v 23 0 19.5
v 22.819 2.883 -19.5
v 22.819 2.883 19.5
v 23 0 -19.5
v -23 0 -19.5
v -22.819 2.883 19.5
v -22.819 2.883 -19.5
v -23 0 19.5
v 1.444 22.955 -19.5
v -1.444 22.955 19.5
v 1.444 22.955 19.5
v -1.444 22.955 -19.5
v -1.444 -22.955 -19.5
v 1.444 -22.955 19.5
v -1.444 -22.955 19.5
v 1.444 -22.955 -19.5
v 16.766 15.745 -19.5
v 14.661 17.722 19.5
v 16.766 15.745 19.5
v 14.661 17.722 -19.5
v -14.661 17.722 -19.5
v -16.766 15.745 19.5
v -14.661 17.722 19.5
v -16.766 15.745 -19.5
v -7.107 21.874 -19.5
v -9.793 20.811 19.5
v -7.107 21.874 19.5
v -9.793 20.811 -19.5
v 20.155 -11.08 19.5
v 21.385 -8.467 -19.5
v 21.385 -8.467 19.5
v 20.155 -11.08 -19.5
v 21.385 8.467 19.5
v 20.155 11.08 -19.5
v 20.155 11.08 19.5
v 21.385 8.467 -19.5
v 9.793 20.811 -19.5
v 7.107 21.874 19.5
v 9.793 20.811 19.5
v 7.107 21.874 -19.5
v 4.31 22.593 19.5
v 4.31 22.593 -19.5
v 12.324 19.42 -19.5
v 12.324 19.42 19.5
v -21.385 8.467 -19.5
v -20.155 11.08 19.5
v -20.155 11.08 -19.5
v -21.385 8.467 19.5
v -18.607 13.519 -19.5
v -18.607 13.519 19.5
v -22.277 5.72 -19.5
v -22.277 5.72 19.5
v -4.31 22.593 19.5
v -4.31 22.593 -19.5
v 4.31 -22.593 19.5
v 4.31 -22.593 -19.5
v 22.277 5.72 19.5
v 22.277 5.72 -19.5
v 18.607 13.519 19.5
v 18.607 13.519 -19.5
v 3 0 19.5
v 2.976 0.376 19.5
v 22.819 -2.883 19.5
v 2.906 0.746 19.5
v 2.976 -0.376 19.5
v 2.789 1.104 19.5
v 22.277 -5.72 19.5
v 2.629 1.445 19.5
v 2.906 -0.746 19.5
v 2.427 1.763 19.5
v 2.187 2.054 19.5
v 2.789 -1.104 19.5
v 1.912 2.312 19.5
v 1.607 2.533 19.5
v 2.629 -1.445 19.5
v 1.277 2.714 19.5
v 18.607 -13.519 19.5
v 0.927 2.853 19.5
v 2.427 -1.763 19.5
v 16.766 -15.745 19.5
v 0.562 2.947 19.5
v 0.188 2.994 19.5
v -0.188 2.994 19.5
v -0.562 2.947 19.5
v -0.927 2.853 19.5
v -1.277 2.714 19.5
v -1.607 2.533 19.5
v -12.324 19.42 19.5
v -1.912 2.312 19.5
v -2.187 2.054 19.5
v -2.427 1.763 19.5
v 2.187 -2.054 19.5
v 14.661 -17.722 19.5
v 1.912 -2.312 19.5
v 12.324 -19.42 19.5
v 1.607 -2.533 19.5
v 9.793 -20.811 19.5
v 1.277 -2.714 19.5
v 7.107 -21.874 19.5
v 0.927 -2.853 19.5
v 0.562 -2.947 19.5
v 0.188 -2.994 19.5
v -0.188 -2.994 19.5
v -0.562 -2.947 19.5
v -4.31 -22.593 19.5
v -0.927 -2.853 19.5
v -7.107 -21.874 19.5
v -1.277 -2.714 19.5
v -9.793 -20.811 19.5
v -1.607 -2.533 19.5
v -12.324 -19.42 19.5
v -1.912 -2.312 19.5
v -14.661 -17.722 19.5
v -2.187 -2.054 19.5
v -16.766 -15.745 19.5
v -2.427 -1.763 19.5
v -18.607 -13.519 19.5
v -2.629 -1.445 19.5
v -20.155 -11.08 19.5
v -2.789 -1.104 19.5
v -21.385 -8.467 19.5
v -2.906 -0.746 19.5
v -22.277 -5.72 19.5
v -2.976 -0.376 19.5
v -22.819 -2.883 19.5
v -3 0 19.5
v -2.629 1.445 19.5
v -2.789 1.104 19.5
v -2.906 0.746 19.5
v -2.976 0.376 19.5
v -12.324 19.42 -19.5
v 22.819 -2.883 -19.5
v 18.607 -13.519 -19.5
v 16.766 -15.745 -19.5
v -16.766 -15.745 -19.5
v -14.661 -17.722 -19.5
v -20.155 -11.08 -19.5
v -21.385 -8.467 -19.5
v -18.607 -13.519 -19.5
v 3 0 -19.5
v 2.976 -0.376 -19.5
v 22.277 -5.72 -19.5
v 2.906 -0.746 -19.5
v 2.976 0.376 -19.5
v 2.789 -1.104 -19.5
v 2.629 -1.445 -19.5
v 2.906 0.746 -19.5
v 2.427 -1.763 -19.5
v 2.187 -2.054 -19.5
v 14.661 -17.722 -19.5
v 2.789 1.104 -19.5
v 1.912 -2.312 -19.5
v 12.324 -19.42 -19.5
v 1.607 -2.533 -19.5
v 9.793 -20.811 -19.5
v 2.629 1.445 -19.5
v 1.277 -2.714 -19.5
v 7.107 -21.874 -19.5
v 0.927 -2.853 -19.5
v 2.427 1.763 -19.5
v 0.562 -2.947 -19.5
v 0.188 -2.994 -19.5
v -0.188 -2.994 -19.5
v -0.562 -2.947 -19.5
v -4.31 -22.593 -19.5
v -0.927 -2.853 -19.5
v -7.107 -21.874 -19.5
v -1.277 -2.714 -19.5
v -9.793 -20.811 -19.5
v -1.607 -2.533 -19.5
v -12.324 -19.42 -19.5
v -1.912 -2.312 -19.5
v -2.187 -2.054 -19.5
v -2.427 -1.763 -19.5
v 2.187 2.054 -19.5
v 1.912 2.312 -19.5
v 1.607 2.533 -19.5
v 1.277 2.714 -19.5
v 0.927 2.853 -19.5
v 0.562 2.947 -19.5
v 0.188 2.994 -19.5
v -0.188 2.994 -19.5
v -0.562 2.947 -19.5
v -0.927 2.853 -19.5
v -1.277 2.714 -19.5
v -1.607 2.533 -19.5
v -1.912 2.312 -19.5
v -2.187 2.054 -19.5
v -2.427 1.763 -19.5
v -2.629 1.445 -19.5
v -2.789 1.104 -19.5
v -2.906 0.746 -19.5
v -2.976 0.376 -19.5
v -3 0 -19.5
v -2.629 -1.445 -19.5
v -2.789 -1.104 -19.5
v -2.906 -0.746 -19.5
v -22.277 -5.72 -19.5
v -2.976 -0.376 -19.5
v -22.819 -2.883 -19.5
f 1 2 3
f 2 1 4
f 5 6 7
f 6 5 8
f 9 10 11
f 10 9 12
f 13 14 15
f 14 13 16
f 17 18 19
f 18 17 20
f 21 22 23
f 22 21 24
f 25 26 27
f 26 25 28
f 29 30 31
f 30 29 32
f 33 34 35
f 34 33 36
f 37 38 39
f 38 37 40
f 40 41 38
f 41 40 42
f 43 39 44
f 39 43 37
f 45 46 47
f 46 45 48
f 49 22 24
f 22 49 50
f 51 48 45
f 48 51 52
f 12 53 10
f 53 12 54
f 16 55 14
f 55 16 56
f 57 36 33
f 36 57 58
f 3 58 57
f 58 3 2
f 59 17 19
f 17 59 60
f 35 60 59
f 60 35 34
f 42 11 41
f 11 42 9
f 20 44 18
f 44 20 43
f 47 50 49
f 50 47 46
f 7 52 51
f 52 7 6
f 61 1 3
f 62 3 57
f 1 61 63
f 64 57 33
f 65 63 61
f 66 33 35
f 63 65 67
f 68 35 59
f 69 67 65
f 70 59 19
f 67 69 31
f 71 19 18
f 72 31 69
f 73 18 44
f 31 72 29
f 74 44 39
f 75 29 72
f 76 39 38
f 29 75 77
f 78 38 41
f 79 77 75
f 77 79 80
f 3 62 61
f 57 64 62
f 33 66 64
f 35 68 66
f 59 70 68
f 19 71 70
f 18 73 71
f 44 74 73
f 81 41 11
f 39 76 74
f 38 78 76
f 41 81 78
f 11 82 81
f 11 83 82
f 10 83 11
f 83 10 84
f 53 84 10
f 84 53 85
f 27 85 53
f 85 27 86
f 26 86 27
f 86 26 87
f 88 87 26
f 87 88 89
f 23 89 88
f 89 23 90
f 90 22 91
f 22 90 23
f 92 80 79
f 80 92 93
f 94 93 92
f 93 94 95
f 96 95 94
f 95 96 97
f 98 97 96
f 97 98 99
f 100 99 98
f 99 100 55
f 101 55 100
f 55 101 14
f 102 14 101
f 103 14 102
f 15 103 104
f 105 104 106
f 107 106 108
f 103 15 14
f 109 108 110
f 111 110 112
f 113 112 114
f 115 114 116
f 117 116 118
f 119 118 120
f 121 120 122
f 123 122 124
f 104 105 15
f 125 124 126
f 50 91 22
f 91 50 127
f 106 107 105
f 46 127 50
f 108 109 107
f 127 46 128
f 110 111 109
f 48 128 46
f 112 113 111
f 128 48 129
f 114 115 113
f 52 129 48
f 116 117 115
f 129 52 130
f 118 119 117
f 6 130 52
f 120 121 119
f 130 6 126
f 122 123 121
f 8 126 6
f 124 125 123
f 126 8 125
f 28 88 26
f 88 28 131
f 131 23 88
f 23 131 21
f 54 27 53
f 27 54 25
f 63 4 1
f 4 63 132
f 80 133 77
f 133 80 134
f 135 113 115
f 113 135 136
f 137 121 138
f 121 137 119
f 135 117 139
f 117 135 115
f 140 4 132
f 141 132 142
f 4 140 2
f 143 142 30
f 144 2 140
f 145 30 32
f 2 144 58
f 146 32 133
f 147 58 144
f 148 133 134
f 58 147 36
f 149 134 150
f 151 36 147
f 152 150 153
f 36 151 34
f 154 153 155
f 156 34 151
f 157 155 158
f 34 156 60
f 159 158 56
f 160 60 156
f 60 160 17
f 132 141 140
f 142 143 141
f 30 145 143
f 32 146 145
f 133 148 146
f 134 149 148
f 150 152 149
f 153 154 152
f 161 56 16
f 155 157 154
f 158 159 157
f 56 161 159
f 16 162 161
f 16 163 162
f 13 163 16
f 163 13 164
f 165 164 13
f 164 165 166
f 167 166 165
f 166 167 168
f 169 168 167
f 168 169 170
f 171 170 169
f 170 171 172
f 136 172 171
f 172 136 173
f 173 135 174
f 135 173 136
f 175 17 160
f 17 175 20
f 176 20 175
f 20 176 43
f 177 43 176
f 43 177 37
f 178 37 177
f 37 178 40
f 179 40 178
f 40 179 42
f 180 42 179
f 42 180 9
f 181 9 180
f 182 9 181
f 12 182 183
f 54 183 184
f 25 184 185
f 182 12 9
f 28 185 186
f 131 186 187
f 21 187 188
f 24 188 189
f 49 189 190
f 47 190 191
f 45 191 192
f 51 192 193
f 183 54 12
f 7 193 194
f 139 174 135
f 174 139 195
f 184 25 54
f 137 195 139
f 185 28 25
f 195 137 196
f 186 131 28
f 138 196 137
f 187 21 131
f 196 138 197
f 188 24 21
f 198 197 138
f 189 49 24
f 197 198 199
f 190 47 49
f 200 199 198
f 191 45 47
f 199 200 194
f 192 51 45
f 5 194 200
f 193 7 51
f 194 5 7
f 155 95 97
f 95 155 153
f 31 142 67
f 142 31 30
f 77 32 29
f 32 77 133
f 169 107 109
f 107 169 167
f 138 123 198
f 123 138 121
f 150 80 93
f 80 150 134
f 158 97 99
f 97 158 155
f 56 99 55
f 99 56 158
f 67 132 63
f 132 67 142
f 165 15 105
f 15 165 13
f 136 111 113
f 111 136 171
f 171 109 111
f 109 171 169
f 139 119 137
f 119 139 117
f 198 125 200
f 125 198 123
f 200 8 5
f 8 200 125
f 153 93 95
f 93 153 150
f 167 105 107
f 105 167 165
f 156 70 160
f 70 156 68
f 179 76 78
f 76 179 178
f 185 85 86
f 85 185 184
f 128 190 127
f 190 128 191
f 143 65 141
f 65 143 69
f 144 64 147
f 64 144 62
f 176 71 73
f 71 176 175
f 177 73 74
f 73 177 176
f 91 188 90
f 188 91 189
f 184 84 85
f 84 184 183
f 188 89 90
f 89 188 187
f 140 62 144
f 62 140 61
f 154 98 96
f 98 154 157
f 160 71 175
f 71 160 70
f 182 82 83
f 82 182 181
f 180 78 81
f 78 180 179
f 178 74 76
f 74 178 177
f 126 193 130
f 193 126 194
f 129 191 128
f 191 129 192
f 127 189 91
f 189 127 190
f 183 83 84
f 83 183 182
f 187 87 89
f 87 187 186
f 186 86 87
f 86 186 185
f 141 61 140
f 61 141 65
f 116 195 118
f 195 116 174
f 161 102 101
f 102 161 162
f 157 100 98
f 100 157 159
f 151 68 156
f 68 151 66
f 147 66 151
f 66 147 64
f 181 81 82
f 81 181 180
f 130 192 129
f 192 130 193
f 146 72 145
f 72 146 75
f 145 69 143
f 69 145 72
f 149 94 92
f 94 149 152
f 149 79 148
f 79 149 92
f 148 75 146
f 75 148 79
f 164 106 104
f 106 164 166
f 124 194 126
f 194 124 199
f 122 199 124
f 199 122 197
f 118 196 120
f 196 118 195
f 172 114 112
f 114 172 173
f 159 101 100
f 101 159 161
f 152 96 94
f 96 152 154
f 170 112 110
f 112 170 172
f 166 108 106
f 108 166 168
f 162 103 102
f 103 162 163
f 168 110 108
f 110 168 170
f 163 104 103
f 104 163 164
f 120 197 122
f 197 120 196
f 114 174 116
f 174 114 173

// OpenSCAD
$fn = 50;


difference() {
	union() {
		translate(v = [0, 0, -19.5000000000]) {
			cylinder(h = 39, r = 23.0000000000);
		}
	}
	union() {
		translate(v = [0, 0, -100.0000000000]) {
			cylinder(h = 200, r = 3.0000000000);
		}
	}
}
